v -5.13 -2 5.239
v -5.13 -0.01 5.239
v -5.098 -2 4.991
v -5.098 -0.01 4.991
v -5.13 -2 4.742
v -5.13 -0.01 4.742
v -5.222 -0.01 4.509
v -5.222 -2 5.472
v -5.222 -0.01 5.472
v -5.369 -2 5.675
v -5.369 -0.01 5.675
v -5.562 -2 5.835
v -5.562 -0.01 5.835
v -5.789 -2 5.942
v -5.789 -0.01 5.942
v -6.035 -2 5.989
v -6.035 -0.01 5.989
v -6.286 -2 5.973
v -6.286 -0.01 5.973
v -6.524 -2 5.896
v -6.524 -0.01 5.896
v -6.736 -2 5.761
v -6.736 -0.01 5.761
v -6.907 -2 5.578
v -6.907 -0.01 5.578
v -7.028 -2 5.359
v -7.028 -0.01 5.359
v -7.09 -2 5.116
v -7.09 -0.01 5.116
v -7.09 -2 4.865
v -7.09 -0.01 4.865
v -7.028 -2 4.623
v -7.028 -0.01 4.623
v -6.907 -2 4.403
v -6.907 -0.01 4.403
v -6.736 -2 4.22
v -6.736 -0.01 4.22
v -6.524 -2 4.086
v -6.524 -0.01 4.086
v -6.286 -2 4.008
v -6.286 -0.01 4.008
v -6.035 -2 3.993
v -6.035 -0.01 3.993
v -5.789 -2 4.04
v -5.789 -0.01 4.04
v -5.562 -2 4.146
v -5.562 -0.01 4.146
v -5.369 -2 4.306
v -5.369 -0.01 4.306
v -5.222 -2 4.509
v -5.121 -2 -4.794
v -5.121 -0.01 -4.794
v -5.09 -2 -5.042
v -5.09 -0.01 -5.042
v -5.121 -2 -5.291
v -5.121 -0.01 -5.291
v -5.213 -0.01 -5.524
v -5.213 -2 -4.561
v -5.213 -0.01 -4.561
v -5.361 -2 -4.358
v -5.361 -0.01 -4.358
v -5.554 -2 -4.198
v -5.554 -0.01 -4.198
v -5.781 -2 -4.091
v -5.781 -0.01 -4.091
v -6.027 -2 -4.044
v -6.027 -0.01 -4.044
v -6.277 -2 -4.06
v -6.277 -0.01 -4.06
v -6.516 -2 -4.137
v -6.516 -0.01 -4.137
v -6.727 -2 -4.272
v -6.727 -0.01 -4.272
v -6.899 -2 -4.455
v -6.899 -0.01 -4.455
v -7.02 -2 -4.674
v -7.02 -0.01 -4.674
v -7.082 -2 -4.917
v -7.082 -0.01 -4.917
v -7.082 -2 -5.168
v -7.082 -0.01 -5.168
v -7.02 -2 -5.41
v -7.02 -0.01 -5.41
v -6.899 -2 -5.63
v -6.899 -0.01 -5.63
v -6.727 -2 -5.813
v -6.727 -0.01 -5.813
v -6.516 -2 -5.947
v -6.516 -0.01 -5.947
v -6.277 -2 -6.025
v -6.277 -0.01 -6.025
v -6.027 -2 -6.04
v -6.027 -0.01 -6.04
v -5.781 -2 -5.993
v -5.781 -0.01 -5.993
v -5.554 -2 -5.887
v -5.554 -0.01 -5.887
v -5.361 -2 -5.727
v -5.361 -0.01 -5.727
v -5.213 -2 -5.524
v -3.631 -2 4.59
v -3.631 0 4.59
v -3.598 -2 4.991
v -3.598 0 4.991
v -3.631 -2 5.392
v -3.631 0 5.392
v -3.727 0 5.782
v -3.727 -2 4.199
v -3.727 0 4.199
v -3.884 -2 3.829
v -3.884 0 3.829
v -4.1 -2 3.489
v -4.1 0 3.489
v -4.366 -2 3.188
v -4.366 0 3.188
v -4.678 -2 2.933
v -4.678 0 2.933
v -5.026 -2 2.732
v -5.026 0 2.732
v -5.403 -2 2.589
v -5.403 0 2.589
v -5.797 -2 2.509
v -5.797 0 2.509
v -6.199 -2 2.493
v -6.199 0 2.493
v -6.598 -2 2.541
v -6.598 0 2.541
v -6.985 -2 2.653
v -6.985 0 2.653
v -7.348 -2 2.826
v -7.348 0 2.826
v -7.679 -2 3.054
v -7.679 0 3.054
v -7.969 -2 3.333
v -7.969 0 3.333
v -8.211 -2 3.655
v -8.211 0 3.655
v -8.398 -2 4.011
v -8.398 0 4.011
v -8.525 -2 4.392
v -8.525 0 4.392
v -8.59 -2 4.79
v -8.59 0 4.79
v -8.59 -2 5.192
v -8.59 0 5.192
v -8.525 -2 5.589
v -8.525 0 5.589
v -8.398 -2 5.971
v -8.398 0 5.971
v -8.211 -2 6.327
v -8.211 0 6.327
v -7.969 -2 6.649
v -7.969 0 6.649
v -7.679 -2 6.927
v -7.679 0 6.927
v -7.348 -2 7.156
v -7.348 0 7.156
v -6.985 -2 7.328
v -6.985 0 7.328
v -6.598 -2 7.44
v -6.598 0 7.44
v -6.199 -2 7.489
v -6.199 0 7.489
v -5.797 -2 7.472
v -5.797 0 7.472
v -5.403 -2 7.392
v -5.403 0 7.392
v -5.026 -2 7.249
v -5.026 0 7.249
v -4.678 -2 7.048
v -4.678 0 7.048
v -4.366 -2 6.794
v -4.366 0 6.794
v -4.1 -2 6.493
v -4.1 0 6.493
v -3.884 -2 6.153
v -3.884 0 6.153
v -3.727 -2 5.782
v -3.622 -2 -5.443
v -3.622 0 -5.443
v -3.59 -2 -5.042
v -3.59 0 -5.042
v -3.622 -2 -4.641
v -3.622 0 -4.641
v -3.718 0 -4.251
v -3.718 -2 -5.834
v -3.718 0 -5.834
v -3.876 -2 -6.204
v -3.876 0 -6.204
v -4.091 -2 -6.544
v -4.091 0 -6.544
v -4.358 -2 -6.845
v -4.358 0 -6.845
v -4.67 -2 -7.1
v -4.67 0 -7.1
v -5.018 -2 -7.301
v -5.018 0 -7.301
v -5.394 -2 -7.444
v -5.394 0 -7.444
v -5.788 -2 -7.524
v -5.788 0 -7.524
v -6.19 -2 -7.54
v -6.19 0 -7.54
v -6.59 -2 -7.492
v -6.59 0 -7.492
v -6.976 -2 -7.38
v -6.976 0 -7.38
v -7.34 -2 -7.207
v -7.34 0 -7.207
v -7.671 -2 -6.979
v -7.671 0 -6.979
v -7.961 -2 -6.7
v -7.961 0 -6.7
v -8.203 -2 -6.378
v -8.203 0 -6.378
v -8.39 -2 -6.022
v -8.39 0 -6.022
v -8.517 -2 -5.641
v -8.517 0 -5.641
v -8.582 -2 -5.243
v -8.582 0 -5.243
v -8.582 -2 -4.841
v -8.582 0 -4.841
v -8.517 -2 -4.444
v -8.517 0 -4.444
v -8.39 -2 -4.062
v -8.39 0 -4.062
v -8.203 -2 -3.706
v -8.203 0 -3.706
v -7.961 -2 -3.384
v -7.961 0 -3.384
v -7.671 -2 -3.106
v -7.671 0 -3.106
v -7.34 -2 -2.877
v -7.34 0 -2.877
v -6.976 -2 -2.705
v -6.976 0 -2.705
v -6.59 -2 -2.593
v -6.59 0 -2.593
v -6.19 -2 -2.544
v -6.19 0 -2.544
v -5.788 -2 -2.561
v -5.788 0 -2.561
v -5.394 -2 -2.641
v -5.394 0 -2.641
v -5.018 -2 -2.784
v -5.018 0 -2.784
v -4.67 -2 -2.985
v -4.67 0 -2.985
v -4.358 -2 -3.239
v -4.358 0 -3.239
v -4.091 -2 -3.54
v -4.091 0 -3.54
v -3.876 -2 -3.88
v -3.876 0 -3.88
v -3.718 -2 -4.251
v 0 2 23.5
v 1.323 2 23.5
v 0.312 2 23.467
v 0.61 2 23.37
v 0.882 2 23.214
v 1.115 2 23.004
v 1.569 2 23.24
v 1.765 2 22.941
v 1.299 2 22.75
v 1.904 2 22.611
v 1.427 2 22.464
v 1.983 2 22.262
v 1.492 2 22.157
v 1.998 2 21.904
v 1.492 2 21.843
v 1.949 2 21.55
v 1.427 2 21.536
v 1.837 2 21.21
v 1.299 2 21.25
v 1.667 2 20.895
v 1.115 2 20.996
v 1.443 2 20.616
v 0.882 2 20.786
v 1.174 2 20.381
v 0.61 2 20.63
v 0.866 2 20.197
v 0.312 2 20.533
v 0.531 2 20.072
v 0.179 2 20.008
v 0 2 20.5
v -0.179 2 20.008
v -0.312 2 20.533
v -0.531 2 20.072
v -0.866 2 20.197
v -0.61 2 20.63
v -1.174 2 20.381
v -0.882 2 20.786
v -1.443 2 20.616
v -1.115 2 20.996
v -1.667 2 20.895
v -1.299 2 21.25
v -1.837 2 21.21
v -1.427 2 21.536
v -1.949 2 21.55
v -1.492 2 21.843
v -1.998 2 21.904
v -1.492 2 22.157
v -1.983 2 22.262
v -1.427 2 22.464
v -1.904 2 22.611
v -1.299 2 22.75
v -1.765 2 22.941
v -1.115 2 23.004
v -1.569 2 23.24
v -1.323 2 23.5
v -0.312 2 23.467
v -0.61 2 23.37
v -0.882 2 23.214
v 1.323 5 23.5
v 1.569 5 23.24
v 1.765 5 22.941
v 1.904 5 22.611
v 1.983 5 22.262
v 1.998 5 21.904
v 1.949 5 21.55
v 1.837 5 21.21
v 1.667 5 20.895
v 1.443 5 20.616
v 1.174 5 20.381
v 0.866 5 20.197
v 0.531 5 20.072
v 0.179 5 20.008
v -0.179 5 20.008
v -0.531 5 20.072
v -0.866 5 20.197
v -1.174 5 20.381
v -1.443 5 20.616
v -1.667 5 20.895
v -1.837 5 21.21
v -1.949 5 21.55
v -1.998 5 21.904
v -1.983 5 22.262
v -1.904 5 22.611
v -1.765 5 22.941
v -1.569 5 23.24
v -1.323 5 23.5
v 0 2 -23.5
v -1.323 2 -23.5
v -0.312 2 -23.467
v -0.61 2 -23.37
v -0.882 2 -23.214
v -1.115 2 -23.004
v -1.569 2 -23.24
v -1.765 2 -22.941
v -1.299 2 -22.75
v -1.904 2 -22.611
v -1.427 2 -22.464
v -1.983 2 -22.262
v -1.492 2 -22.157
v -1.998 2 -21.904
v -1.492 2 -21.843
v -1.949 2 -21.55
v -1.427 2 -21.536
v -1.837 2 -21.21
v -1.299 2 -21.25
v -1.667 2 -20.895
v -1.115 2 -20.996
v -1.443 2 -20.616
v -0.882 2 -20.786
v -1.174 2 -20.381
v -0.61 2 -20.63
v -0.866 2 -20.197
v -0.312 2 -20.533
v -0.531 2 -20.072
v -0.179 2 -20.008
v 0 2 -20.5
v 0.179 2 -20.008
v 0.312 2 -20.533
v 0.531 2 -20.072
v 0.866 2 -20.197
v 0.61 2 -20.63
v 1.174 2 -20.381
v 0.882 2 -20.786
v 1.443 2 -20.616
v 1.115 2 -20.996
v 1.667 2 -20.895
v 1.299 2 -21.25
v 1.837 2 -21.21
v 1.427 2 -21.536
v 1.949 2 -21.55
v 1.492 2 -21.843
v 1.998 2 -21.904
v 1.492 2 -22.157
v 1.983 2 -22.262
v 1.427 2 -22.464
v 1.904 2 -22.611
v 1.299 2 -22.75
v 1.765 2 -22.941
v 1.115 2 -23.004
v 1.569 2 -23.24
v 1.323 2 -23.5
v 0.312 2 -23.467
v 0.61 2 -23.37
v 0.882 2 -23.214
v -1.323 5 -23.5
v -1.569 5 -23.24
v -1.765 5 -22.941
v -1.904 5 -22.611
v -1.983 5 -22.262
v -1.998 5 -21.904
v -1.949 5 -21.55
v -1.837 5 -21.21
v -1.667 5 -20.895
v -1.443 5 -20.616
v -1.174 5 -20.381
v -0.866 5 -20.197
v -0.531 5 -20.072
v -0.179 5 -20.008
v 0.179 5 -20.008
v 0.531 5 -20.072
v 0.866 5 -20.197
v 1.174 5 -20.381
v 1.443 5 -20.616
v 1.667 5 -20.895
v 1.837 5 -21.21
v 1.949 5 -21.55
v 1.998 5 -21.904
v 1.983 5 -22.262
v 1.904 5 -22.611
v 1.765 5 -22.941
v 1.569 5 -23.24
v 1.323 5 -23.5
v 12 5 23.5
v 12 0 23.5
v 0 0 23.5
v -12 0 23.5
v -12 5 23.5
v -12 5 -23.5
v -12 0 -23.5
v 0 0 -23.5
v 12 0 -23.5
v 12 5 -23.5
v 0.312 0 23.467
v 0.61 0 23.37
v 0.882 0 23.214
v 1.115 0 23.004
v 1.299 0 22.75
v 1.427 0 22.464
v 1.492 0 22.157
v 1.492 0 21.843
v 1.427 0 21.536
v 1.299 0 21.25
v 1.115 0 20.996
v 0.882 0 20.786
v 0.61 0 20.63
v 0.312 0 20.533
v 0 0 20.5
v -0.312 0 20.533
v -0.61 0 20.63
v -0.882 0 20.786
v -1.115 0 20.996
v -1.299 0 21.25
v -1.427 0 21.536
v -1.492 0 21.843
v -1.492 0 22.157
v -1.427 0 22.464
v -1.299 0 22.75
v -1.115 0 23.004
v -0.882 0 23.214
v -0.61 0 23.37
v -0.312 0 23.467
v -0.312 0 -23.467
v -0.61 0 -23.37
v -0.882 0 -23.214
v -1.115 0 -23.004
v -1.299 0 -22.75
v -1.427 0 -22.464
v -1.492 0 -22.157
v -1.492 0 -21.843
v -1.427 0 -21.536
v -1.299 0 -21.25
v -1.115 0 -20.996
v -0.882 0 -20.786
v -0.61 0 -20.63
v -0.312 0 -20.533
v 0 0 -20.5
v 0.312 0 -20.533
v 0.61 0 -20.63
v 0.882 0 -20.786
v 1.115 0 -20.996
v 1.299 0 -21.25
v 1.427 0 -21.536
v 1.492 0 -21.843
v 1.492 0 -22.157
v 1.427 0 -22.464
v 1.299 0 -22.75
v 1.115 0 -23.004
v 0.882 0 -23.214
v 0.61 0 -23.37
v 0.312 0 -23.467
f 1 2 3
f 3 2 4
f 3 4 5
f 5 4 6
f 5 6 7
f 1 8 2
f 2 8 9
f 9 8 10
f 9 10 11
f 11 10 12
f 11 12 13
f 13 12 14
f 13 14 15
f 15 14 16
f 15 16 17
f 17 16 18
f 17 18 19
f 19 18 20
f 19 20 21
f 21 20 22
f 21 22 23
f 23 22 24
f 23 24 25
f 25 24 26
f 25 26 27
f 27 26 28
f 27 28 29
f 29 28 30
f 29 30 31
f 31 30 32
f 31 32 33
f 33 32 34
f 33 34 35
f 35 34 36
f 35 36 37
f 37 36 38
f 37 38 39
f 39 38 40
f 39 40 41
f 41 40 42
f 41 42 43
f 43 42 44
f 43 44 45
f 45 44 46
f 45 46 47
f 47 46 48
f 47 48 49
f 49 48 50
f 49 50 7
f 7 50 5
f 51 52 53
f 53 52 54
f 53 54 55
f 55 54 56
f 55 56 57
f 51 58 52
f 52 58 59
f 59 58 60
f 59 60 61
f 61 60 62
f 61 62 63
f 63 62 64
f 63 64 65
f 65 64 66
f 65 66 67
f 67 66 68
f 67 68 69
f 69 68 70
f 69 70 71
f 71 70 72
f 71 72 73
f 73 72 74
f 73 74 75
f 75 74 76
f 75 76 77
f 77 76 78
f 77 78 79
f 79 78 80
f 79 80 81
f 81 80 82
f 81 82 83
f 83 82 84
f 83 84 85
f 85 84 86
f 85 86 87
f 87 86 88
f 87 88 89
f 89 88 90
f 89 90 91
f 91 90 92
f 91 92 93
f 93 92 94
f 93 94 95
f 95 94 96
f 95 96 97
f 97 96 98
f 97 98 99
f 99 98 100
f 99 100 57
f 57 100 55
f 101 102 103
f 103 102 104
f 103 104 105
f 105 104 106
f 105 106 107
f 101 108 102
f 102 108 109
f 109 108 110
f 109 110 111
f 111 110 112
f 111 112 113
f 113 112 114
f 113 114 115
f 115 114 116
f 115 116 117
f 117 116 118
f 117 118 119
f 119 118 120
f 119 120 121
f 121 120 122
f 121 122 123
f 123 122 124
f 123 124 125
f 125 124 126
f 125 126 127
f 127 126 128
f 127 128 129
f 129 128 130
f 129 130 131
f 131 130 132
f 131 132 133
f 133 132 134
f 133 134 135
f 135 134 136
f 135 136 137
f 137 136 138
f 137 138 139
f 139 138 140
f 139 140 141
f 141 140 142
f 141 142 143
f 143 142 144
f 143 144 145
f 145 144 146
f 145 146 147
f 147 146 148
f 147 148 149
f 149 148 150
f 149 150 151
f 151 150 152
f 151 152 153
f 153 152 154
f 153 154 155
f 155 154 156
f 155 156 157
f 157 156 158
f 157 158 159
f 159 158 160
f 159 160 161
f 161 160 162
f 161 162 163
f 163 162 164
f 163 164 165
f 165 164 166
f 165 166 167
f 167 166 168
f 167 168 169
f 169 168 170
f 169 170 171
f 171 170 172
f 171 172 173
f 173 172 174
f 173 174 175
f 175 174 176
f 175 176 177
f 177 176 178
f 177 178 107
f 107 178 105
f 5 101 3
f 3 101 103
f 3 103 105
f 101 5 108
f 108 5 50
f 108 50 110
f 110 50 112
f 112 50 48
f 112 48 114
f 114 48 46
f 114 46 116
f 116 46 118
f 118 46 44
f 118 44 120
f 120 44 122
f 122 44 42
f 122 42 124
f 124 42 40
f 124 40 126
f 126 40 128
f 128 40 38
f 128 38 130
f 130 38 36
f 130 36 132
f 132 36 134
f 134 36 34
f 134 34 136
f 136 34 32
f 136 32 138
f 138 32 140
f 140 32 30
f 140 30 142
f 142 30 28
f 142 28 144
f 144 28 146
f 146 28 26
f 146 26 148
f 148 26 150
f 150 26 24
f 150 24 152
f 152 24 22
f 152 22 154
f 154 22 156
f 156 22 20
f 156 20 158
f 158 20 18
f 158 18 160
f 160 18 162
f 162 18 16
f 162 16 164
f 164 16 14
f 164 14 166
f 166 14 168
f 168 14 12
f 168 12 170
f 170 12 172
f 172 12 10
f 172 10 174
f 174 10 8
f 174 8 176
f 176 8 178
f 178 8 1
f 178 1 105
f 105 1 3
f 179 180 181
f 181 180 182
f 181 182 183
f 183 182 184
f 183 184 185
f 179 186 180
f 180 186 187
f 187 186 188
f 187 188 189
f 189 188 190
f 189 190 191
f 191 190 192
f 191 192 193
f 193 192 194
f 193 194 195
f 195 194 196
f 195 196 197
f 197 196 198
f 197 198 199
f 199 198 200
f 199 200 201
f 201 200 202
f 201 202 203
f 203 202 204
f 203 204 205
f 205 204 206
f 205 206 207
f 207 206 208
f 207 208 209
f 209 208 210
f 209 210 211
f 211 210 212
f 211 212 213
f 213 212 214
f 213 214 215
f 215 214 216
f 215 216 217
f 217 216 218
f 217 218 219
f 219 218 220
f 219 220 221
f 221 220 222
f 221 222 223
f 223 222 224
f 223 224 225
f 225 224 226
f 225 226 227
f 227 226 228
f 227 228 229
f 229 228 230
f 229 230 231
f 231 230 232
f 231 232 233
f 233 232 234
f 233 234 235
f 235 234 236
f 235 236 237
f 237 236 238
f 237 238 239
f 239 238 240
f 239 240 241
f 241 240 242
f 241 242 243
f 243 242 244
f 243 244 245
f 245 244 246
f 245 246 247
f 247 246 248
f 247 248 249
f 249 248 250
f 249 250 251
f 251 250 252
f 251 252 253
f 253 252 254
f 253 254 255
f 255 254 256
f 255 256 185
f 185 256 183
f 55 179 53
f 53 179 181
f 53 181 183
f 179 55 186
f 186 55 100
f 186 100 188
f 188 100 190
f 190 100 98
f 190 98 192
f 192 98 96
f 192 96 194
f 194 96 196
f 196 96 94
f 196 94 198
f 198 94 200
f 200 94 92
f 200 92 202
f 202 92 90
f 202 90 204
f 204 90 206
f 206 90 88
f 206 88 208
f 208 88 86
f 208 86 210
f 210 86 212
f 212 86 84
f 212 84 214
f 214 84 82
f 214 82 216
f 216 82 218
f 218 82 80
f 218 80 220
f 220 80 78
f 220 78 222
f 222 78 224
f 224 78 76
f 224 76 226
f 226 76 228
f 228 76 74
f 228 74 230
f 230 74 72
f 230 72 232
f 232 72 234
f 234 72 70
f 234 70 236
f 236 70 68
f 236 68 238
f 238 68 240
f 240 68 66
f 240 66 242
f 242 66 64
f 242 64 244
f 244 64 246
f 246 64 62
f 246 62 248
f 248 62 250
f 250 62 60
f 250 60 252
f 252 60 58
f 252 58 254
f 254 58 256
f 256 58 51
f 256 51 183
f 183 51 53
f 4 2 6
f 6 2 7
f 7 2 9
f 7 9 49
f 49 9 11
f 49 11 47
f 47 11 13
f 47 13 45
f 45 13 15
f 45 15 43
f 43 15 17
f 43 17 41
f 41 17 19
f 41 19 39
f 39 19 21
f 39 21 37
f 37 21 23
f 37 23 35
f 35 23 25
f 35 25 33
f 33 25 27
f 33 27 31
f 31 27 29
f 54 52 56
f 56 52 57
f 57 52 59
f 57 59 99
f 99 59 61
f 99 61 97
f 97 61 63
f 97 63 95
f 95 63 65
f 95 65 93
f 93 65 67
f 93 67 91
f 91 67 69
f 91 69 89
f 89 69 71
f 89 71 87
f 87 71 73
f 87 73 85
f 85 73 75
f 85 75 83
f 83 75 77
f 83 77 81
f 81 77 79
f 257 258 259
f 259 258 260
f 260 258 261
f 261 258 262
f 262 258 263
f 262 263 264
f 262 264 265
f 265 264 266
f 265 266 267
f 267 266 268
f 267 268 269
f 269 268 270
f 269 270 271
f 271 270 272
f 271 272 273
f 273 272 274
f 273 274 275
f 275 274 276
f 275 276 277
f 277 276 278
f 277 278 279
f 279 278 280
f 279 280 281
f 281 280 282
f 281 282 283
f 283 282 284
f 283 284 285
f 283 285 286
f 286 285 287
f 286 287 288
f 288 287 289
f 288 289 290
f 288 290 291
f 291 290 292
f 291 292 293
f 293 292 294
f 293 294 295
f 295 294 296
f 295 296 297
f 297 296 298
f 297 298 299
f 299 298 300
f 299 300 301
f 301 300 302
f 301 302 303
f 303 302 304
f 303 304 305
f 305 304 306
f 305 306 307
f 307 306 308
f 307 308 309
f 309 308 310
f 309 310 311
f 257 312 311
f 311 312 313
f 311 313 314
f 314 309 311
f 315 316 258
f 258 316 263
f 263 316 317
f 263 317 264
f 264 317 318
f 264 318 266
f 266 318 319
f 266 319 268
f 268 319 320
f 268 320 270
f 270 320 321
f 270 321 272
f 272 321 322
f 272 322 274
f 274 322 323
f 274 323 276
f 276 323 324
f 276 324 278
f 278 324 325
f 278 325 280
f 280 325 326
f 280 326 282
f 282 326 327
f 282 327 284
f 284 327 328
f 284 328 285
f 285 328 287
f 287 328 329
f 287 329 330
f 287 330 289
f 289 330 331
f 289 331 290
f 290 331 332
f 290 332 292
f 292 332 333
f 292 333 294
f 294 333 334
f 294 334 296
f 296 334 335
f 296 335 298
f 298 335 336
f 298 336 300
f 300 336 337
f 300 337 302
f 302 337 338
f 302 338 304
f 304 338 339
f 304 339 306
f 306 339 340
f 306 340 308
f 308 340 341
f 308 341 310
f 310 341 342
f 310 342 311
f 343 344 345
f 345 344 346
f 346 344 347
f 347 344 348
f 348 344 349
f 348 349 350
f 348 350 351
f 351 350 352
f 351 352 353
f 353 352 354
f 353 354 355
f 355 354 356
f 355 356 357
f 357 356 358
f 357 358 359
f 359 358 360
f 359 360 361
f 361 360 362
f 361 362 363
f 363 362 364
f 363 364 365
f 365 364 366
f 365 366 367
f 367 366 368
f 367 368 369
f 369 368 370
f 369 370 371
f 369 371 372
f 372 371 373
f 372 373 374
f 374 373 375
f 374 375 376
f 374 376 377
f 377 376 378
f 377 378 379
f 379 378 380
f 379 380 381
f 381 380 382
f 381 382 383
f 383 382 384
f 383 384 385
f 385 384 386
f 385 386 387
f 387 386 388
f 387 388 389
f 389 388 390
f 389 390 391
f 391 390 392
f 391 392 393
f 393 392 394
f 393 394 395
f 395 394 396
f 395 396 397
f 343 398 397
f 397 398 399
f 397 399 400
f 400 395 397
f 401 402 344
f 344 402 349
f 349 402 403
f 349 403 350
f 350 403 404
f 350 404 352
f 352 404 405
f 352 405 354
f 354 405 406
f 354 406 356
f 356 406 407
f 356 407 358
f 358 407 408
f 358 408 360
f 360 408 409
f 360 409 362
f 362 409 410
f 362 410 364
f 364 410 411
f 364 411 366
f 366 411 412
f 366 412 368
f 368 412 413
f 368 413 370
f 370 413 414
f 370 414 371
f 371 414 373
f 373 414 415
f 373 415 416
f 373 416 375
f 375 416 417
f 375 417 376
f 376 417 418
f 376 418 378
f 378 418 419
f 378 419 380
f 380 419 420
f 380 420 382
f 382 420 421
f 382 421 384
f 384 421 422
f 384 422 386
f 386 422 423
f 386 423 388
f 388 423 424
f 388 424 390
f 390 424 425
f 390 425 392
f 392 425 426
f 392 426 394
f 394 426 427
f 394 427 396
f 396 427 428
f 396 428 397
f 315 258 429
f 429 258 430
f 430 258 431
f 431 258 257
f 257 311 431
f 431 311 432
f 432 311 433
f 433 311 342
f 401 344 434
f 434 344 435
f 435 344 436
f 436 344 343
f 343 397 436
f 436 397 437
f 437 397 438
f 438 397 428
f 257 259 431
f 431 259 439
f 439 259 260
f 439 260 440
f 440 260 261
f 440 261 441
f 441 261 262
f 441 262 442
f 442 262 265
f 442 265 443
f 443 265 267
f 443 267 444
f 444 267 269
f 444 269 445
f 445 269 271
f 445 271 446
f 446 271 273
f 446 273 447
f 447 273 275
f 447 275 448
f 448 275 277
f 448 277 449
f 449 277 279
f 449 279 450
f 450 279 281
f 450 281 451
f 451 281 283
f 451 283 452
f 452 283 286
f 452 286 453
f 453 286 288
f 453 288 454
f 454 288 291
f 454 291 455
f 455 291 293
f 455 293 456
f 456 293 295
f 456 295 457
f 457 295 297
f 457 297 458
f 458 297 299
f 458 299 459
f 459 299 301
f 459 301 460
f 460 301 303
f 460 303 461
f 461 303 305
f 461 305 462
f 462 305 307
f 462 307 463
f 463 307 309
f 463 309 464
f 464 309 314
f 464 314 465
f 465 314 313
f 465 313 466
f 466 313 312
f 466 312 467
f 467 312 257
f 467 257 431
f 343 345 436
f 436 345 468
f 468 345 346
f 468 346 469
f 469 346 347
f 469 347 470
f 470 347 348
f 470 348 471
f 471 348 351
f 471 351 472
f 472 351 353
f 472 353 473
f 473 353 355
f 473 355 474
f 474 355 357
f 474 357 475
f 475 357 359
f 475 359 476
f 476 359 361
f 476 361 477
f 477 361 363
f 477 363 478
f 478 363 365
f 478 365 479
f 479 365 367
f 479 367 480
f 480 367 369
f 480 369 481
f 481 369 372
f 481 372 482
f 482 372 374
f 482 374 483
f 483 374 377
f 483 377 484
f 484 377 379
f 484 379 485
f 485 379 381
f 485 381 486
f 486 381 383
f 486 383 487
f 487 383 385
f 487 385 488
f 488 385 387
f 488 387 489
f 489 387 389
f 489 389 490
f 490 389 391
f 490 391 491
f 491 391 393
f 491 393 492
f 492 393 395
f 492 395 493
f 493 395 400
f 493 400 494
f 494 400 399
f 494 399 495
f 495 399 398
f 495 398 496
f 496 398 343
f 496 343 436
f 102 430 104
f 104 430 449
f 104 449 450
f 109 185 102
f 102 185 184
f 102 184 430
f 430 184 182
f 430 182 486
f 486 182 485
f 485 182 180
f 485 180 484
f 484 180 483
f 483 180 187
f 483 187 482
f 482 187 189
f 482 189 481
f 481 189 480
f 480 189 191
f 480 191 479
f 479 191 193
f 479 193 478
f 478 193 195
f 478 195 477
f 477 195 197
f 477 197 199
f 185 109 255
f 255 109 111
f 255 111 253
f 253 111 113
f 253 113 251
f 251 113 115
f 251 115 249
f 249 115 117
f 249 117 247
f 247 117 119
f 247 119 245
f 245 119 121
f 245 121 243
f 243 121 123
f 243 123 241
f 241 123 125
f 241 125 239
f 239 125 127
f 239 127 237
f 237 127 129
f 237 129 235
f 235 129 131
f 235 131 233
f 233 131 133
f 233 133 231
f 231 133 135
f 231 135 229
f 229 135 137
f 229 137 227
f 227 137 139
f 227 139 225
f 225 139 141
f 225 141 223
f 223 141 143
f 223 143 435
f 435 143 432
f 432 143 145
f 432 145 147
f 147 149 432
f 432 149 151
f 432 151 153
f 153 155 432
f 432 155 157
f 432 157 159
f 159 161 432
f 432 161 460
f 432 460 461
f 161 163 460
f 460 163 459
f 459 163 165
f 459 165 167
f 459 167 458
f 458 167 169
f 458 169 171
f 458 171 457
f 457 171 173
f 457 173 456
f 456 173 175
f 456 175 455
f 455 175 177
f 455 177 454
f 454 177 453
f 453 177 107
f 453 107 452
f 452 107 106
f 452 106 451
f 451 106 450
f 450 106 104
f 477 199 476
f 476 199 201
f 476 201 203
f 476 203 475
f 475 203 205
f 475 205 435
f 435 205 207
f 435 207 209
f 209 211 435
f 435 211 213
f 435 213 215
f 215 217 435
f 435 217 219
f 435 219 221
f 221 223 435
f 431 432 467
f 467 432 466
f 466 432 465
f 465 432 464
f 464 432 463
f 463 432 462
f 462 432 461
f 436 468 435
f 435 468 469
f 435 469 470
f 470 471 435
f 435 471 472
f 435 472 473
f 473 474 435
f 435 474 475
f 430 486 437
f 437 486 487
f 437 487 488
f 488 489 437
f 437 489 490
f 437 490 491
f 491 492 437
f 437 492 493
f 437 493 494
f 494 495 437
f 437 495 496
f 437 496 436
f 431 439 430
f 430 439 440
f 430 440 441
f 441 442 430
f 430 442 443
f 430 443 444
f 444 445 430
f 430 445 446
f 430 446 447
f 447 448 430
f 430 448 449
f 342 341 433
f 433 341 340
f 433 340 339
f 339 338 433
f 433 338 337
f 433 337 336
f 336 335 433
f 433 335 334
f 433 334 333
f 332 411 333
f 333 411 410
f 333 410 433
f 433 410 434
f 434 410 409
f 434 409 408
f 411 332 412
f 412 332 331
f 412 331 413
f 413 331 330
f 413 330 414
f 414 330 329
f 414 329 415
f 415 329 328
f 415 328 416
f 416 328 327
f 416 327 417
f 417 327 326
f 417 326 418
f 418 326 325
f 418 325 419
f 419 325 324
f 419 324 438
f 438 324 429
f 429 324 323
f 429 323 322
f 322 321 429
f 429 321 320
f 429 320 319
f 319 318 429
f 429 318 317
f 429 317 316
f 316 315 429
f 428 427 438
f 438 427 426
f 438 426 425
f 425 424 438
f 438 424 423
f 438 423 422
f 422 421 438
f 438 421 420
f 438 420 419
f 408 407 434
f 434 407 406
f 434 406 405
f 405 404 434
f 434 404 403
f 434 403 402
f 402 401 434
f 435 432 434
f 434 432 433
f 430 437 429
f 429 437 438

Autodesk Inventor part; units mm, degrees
ref_plane "YZ Plane" through (0, 0, 0) normal (1, 0, 0) x (0, 1, 0)
ref_plane "XZ Plane" through (0, 0, 0) normal (0, 1, 0) x (-1, 0, 0)
ref_plane "XY Plane" through (0, 0, 0) normal (0, 0, 1) x (1, 0, 0)
sketch "Sketch1" plane through (0, 0, 0) normal (0, 1, 0) x (-1, 0, 0)
  line L0 (12, 23.5) -> (-12, 23.5)
  line L1 (-12, 23.5) -> (-12, -23.5)
  line L2 (-12, -23.5) -> (12, -23.5)
  line L3 (12, -23.5) -> (12, 23.5)
  point P0 (0, 0)
  dimension "d0" = 12
  dimension "d1" = 12
  dimension "d2" = 23.5
  dimension "d3" = 23.5
extrude "Extrusion1" add sketch "Sketch1" along normal blind 5
sketch "Sketch2" plane through (0, 5, 0) normal (0, 1, 0) x (1, 0, 0)
  circle A0 centre (0, -22) radius 1.5
  circle A1 centre (0, 22) radius 1.5
  point P0 (0, 0)
  dimension "d6" = 3
  dimension "d7" = 3
  dimension "d8" = 22
  dimension "d9" = 22
  dimension "d10" = 0
  dimension "d11" = 0
extrude "Extrusion2" cut sketch "Sketch2" against normal up to surface (5 mm away)
sketch "Sketch4" plane through (0, 5, 0) normal (0, 1, 0) x (1, 0, 0)
  circle A0 centre (0, -22) radius 1.5 projected
  circle A1 centre (0, 22) radius 1.5 projected
  line L0 (-12, -23.5) -> (0, -23.5) projected
  line L1 (12, -23.5) -> (12, 23.5) projected
  line L2 (12, 23.5) -> (0, 23.5) projected
  line L3 (-12, 23.5) -> (-12, -23.5) projected
  circle A2 centre (0, -22) radius 2
  circle A3 centre (0, 22) radius 2
  line L4 (0, -23.5) -> (12, -23.5) projected
  line L5 (0, 23.5) -> (-12, 23.5) projected
  point P0 (0, 0)
  dimension "d14" = 4
  dimension "d15" = 4
extrude "Extrusion3" cut sketch "Sketch4" against normal blind 3 contours L0 A2 L4 | L4 A2 L0 | L5 L2 A3 | A3 L2 L5
sketch "Sketch5" plane through (0, 0, 0) normal (0, -1, 0) x (1, 0, 0)
  line L0 (6.9, -7.1144) -> (6.9, 7.2186) projected
  line L1 (6.9, 7.2186) -> (-8.137, 7.2) projected
  line L2 (-8.137, 7.2) -> (-8.104, -7.136) projected
  line L3 (-8.104, -7.136) -> (6.9, -7.1144) projected
  circle A0 centre (4.9456, 5.262) radius 0.4065 projected
  circle A1 centre (4.9282, -4.9331) radius 0.4065 projected
  circle A2 centre (4.9478, 2.722) radius 0.4065 projected
  circle A3 centre (4.952, -2.358) radius 0.4065 projected
  circle A4 centre (-6.0981, 4.9907) radius 1.5 projected
  circle A5 centre (-6.0897, -5.0423) radius 1.5 projected
  circle A6 centre (-6.0897, -5.0423) radius 1
  circle A7 centre (-6.0981, 4.9907) radius 1
  point P0 (0, 0)
  dimension "d24" = 1
  dimension "d25" = 1
extrude "Extrusion4" add sketch "Sketch5" along normal blind 0.01 contours A4 | A5 | A6 | A7
sketch "Sketch6" plane through (0, 0, 0) normal (0, -1, 0) x (1, 0, 0)
  circle A0 centre (-6.0981, 4.9907) radius 1.5 projected
  circle A1 centre (-6.0897, -5.0423) radius 1.5 projected
  circle A2 centre (0, 22) radius 1.5 projected
  circle A3 centre (0, -22) radius 1.5 projected
  line L0 (-12, 23.5) -> (0, 23.5) projected
  line L1 (-12, -23.5) -> (-12, 23.5) projected
  line L2 (12, -23.5) -> (0, -23.5) projected
  line L3 (12, 23.5) -> (12, -23.5) projected
  circle A4 centre (-6.0981, 4.9907) radius 2.5
  circle A5 centre (-6.0897, -5.0423) radius 2.5
  line L4 (0, -23.5) -> (-12, -23.5) projected
  line L5 (0, 23.5) -> (12, 23.5) projected
  point P0 (0, 0)
  dimension "d20" = 1
  dimension "d21" = 1
extrude "Extrusion5" add sketch "Sketch6" along normal blind 2 contours A4 | A5
sketch "Sketch7" plane through (-6.0897, -2, -5.0423) normal (0, -1, 0) x (1, 0, 0)
  circle A0 centre (0, 0) radius 1.5 projected
  circle A1 centre (0, 0) radius 2.5 projected
  circle A2 centre (-0.0084, 10.033) radius 1.5 projected
  circle A3 centre (-0.0084, 10.033) radius 2.5 projected
  circle A4 centre (0, 0) radius 1
  circle A5 centre (-0.0084, 10.033) radius 1
  point P0 (6.0897, 5.0423)
  dimension "d26" = 1
  dimension "d27" = 1
extrude "Extrusion6" add sketch "Sketch7" against normal blind 5 contours A0 | A2
equation "\"d1\" = d0"
properties part number "Bottom"
